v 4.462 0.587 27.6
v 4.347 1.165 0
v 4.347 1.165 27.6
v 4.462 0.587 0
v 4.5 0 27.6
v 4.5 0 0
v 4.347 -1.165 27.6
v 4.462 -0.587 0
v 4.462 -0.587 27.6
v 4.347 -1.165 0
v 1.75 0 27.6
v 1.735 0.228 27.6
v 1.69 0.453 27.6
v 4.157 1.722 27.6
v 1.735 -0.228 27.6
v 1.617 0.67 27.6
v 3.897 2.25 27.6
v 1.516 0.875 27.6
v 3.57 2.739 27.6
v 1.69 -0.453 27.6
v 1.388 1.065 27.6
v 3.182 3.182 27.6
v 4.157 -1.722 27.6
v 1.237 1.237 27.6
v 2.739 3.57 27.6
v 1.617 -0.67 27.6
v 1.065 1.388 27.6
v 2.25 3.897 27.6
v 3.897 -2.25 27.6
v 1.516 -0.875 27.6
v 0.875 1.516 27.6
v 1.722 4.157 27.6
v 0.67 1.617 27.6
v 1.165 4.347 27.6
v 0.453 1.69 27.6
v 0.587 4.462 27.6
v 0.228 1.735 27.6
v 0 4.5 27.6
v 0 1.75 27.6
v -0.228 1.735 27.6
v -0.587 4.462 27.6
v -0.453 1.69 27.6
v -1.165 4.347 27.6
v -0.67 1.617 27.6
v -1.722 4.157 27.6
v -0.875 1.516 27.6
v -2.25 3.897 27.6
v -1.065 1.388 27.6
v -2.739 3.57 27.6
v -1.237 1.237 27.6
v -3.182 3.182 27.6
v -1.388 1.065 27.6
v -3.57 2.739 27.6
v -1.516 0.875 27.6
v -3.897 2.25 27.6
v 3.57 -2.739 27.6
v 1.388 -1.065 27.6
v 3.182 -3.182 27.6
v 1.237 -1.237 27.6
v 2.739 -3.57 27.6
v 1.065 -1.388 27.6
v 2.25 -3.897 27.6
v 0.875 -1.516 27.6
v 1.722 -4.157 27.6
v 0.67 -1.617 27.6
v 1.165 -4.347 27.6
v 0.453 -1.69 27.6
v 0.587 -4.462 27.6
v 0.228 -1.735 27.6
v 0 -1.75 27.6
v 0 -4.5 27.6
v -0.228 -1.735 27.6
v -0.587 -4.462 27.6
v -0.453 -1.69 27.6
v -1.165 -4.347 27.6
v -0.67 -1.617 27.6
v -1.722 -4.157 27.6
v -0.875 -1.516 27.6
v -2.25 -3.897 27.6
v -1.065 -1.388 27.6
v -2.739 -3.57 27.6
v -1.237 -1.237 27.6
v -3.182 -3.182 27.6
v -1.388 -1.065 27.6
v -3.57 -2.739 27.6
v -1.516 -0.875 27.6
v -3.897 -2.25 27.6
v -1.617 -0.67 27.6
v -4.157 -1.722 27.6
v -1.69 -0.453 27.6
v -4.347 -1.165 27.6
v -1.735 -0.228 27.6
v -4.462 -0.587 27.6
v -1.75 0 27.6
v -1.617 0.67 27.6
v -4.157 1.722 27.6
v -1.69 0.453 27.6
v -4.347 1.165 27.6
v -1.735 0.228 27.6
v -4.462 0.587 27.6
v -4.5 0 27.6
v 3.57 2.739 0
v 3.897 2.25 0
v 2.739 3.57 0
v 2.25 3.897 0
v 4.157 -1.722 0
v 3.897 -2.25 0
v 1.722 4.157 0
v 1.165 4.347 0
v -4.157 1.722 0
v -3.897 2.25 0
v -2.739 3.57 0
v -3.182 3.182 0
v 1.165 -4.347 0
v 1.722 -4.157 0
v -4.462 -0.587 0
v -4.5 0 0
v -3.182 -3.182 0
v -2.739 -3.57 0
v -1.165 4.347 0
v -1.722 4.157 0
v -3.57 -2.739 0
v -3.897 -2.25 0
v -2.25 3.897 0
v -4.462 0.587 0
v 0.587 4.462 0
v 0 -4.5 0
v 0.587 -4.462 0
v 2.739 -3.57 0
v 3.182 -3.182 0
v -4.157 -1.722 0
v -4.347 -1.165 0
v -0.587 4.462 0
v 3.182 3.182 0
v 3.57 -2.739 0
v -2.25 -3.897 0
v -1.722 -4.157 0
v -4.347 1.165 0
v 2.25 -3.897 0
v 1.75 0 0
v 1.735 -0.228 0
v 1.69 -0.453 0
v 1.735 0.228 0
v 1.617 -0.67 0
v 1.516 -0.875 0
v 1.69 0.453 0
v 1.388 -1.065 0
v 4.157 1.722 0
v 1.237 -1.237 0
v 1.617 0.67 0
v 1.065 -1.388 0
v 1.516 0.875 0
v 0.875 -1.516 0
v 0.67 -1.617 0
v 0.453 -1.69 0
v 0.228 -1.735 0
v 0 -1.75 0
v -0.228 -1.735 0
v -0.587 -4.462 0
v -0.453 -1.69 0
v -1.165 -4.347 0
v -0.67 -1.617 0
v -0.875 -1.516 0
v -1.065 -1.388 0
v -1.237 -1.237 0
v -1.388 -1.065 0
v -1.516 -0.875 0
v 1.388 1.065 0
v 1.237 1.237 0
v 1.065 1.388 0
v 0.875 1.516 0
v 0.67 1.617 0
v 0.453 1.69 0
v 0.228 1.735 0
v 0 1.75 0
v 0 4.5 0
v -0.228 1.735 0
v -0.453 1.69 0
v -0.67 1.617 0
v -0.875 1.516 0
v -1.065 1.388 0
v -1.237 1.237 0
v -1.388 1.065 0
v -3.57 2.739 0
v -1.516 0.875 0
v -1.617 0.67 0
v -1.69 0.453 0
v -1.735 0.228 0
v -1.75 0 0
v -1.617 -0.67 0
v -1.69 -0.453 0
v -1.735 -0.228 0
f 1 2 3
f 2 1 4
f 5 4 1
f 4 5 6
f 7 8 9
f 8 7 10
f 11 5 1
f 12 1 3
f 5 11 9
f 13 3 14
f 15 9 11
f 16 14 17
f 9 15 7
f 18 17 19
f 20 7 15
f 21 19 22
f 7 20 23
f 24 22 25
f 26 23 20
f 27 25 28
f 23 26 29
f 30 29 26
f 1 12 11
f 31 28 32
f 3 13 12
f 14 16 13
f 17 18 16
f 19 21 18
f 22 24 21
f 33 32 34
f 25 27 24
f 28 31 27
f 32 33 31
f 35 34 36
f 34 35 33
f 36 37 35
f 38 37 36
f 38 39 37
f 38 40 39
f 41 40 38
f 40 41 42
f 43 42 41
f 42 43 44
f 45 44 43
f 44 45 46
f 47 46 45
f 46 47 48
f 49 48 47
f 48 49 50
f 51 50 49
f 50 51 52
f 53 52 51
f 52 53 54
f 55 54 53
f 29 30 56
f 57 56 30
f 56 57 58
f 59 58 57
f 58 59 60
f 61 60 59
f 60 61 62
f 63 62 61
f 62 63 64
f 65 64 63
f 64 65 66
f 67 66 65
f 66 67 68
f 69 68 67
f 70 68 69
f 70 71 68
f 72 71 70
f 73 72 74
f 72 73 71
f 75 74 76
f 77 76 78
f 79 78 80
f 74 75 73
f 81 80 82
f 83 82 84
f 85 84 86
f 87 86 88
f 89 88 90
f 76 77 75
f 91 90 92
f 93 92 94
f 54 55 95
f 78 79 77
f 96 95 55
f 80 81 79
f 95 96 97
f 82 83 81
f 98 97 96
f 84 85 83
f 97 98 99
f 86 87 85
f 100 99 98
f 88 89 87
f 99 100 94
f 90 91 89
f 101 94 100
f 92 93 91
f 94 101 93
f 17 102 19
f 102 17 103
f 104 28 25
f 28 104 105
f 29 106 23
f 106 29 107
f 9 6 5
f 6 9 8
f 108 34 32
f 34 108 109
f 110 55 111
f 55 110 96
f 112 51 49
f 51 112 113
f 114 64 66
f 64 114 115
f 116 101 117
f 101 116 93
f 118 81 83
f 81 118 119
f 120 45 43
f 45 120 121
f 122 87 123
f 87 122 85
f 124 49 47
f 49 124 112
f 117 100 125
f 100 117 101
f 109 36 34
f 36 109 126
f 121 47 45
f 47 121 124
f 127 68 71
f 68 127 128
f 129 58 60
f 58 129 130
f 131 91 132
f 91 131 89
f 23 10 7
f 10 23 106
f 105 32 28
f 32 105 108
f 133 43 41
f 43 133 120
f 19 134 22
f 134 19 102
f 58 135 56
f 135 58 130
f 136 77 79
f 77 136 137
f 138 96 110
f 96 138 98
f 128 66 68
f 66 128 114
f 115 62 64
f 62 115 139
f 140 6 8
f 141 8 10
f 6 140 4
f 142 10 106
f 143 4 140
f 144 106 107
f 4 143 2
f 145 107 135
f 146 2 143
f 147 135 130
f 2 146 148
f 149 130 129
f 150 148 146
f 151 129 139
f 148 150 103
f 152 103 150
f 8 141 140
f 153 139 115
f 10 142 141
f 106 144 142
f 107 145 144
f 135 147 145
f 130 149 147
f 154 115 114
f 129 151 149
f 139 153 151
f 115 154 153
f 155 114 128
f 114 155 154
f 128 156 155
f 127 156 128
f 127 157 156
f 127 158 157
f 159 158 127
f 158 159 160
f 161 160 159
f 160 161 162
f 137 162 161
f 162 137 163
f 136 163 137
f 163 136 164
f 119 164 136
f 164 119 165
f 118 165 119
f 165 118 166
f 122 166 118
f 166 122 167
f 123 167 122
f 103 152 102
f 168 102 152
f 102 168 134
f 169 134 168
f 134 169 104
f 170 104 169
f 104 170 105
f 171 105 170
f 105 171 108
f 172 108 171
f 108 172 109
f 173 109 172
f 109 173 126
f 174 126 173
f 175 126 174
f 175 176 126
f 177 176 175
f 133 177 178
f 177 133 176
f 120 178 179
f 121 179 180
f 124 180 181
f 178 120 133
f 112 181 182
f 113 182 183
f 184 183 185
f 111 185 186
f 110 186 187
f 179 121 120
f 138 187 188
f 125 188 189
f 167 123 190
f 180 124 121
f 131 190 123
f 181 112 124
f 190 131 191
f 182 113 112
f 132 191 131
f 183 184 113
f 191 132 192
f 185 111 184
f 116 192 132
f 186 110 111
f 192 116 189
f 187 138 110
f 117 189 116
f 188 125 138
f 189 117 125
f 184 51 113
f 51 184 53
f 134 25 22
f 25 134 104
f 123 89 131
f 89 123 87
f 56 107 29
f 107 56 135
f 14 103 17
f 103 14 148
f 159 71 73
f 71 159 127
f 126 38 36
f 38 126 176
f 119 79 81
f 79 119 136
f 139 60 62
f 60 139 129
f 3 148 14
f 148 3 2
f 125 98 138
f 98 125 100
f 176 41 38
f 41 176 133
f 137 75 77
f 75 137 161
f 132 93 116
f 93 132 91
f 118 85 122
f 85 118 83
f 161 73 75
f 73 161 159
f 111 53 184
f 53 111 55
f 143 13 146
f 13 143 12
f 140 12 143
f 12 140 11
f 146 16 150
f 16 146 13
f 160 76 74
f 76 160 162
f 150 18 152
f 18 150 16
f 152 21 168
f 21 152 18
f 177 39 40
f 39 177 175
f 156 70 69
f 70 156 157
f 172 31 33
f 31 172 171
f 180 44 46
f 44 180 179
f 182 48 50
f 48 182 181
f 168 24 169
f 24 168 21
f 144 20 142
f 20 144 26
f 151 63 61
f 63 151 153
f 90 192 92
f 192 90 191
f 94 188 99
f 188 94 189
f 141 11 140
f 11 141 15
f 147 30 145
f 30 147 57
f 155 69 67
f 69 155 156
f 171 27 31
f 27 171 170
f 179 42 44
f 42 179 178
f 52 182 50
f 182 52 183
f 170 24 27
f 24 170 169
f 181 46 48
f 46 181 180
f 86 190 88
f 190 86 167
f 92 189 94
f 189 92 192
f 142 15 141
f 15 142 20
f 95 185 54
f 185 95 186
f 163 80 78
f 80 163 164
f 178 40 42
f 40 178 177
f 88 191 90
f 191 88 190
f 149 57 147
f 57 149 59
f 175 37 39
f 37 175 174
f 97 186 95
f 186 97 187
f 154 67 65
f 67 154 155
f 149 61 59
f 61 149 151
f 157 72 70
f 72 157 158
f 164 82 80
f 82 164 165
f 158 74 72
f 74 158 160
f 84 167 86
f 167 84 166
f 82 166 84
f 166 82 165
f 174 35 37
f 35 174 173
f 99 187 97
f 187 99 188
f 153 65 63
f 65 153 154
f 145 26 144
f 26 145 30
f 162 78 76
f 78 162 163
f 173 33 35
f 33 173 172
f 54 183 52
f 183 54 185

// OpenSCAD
// file: parameters.scad
// =============================================================================
// Gen-BF — nightly 2026-10-04 (physics_scorer, honest magpylib watts)
// 8-pole / 6-coil dual rotor with big 51.5 deg sector coils and TALL 9.9 mm copper, magnets seated directly on 3 mm steel back-iron discs (through-pockets) so the field stays high across a wide gap.
// Clocking 0 deg (magnets N facing S) + D-flat keyed bore + index notch + flip-symmetric hole map.
// Windable 2-piece bobbin; turns = physics_scorer turns_fit; copper only between flanges.
// Steel back-iron: two 3.0 mm mild-steel discs (steel_backiron_disc.dxf); magnets sit ON the steel
// (through-pockets) -> score with --back-iron.
// =============================================================================
topology            = "dual_rotor";

// --- Wire / winding (physics_scorer winding-fit) -------------------------------
wire_awg            = 26;
wire_od             = 0.45;     // insulated OD mm (bare 0.405)
fill_realistic      = 0.60;     // insulated-wire area / window, hand-wound layered
turns               = 571;       // = physics_scorer turns_fit (do NOT raise)
coil_former_type    = "bobbin";
coil_core_inset     = 15.30;     // radial copper build: hub = copper boundary inset by this
wind_build_axial    = 0.0;      // nothing proud of the flanges
wind_build_radial   = 0.0;

// --- Bobbin (base + lid) ---------------------------------------------------------
coil_id_r           = 25.00;    // copper boundary sector
coil_od_r           = 62.00;
span_deg            = 51.51;    // = pitch - 2*asin((wall+0.85)/coil_id_r) -> >=1.2 mm stator web
former_web          = 9.90;     // copper height between flanges (TALL copper: steel keeps Bz up)
flange_t            = 0.80;     // >= 0.8 mm FDM wall rule (tall winds push on the flanges)
wall                = 1.00;     // flange lip beyond copper
former_bare_h       = former_web + 2 * flange_t;
coil_envelope_h     = former_bare_h + 2 * wind_build_axial;
tab_w               = 7.0;
tab_len             = 7.0;
tab_h               = former_bare_h / 2;
pin_d               = 1.9;      // 1.75 mm filament locating pin
coil_mount_r        = coil_od_r + 0.2 + 4.0;
lead_y              = 1.6;
lead_slot_w         = 0.9;
lead_groove_d       = 0.6;

// --- Gap -------------------------------------------------------------------------
run_clear           = 0.50;     // rotor face -> flange
gap_spacer_h        = run_clear + wind_build_axial;
m2m                 = coil_envelope_h + 2 * run_clear;   // rotor face to rotor face (= gap_sleeve length)

// --- Stator ----------------------------------------------------------------------
coil_stations       = 6;
bay_clear           = 0.25;
stator_thick        = former_bare_h;                        // bobbins flush both faces
stator_od           = 149.0;
shaft_clear_stator  = 14.0;     // stator is static; gap sleeve OD 12 spins inside

// --- Rotor(s) --------------------------------------------------------------------
magnet_Br           = 1.43;     // N52
magnet_d_large      = 20.0;
magnet_h_large      = 5.0;      // one O20x5 per pocket
magnet_h_small      = 5.0;      // one O5x5 per pocket
halbach_magnetisation = "diametric"; // O5x5 assist magnets MUST be DIAMETRICALLY magnetised (tangential)
rotor_b_same_axis   = true;     // same-index magnets share one axis: N faces S across the gap
large_pocket_d      = 20.3;
small_pocket_d      = 5.3;
pocket_h            = 5.10;     // THROUGH the carrier: magnet back face sits on the steel disc
large_n             = 8;
R_large             = 44.0;
R_small_inner       = 30.0;
R_small_mid         = 44.0;
R_small_outer       = 59.0;
small_r_list        = [R_small_inner, R_small_mid, R_small_outer];   // O5 pockets between poles
carrier_od          = 127.0;
carrier_thick       = pocket_h;
hub_h               = 10.0;
hub_od              = 24.0;     // slim hub so the M4 brace rods fit at R~18 inside the coil ring
hub_insert_d        = 4.0;      // M3 heat-set insert, radial, bears on the D-flat
rotor_b_offset_deg  = 0.0;      // CLOCKING: magnets directly opposite
shaft_key           = "dflat";
dflat_depth         = 0.5;      // 8 mm shaft with 0.5 mm flat (7.5 across flat)
index_notch_d       = 3.0;

// --- Steel back-iron (buyable laser-cut) -------------------------------------------
steel_t             = 3.0;      // mild steel thickness (not modelled by the image method; >=3 avoids saturation)
steel_center_hole   = 26.0;     // slips over the rotor hub (OD 24)

// --- Modular MAX interface ----------------------------------------------------------
shaft_bore          = 8.35;
dflat_x             = 4.0 - dflat_depth + (shaft_bore - 8.0) / 2;
bearing_d           = 21.85;
bearing_h           = 7.2;
m3_clear            = 3.5;
bolt_r_inner        = 27.0;     // M3 steel-disc clamp bolts (inside the magnet ring)
bolt_n_inner        = 4;
bolt_inner_angles   = [0, 90, 180, 270];
bolt_r_outer        = 57.0;     // M3 steel-disc clamp bolts (outside the magnet ring)
bolt_outer_angles   = [0, 90, 180, 270];
flange_bolt_r       = 69.5;     // frame rods: OUTSIDE the rotor OD (rotors spin inside them)
flange_bolt_n       = 6;
flange_bolt_offset  = 30.00;    // between coil stations -> never cuts a lead groove/tab
brace_r             = 18.0;
brace_d             = 4.3;      // temporary M4 jack rods (assembly only)
brace_n             = 4;
brace_angles        = [45, 135, 225, 315];          // flip-symmetric

spacer_pad_od       = 14.0;
spacer_pad_id       = m3_clear;
endbell_od          = 149.0;
endbell_thick       = 8.0;
endbell_shaft_clear = 10.0;
collar_h            = 10.0;
standoff_od         = 9.0;
frame_standoff_h    = run_clear + carrier_thick + hub_h + collar_h + 2.0;
sleeve_od           = 12.0;
plate_max_mm        = 410;

$fn = 64;
// main file
// Gen-BF — frame standoff tube between stator and an endbell, on each M3 frame rod (outside rotor OD).
// Print x12. Height = frame_standoff_h (rotor + steel + hub + collar + running clearance).
include <parameters.scad>;
$fn = 48;
difference() {
    cylinder(d=standoff_od, h=frame_standoff_h);
    translate([0, 0, -0.1]) cylinder(d=m3_clear, h=frame_standoff_h + 0.2);
}
